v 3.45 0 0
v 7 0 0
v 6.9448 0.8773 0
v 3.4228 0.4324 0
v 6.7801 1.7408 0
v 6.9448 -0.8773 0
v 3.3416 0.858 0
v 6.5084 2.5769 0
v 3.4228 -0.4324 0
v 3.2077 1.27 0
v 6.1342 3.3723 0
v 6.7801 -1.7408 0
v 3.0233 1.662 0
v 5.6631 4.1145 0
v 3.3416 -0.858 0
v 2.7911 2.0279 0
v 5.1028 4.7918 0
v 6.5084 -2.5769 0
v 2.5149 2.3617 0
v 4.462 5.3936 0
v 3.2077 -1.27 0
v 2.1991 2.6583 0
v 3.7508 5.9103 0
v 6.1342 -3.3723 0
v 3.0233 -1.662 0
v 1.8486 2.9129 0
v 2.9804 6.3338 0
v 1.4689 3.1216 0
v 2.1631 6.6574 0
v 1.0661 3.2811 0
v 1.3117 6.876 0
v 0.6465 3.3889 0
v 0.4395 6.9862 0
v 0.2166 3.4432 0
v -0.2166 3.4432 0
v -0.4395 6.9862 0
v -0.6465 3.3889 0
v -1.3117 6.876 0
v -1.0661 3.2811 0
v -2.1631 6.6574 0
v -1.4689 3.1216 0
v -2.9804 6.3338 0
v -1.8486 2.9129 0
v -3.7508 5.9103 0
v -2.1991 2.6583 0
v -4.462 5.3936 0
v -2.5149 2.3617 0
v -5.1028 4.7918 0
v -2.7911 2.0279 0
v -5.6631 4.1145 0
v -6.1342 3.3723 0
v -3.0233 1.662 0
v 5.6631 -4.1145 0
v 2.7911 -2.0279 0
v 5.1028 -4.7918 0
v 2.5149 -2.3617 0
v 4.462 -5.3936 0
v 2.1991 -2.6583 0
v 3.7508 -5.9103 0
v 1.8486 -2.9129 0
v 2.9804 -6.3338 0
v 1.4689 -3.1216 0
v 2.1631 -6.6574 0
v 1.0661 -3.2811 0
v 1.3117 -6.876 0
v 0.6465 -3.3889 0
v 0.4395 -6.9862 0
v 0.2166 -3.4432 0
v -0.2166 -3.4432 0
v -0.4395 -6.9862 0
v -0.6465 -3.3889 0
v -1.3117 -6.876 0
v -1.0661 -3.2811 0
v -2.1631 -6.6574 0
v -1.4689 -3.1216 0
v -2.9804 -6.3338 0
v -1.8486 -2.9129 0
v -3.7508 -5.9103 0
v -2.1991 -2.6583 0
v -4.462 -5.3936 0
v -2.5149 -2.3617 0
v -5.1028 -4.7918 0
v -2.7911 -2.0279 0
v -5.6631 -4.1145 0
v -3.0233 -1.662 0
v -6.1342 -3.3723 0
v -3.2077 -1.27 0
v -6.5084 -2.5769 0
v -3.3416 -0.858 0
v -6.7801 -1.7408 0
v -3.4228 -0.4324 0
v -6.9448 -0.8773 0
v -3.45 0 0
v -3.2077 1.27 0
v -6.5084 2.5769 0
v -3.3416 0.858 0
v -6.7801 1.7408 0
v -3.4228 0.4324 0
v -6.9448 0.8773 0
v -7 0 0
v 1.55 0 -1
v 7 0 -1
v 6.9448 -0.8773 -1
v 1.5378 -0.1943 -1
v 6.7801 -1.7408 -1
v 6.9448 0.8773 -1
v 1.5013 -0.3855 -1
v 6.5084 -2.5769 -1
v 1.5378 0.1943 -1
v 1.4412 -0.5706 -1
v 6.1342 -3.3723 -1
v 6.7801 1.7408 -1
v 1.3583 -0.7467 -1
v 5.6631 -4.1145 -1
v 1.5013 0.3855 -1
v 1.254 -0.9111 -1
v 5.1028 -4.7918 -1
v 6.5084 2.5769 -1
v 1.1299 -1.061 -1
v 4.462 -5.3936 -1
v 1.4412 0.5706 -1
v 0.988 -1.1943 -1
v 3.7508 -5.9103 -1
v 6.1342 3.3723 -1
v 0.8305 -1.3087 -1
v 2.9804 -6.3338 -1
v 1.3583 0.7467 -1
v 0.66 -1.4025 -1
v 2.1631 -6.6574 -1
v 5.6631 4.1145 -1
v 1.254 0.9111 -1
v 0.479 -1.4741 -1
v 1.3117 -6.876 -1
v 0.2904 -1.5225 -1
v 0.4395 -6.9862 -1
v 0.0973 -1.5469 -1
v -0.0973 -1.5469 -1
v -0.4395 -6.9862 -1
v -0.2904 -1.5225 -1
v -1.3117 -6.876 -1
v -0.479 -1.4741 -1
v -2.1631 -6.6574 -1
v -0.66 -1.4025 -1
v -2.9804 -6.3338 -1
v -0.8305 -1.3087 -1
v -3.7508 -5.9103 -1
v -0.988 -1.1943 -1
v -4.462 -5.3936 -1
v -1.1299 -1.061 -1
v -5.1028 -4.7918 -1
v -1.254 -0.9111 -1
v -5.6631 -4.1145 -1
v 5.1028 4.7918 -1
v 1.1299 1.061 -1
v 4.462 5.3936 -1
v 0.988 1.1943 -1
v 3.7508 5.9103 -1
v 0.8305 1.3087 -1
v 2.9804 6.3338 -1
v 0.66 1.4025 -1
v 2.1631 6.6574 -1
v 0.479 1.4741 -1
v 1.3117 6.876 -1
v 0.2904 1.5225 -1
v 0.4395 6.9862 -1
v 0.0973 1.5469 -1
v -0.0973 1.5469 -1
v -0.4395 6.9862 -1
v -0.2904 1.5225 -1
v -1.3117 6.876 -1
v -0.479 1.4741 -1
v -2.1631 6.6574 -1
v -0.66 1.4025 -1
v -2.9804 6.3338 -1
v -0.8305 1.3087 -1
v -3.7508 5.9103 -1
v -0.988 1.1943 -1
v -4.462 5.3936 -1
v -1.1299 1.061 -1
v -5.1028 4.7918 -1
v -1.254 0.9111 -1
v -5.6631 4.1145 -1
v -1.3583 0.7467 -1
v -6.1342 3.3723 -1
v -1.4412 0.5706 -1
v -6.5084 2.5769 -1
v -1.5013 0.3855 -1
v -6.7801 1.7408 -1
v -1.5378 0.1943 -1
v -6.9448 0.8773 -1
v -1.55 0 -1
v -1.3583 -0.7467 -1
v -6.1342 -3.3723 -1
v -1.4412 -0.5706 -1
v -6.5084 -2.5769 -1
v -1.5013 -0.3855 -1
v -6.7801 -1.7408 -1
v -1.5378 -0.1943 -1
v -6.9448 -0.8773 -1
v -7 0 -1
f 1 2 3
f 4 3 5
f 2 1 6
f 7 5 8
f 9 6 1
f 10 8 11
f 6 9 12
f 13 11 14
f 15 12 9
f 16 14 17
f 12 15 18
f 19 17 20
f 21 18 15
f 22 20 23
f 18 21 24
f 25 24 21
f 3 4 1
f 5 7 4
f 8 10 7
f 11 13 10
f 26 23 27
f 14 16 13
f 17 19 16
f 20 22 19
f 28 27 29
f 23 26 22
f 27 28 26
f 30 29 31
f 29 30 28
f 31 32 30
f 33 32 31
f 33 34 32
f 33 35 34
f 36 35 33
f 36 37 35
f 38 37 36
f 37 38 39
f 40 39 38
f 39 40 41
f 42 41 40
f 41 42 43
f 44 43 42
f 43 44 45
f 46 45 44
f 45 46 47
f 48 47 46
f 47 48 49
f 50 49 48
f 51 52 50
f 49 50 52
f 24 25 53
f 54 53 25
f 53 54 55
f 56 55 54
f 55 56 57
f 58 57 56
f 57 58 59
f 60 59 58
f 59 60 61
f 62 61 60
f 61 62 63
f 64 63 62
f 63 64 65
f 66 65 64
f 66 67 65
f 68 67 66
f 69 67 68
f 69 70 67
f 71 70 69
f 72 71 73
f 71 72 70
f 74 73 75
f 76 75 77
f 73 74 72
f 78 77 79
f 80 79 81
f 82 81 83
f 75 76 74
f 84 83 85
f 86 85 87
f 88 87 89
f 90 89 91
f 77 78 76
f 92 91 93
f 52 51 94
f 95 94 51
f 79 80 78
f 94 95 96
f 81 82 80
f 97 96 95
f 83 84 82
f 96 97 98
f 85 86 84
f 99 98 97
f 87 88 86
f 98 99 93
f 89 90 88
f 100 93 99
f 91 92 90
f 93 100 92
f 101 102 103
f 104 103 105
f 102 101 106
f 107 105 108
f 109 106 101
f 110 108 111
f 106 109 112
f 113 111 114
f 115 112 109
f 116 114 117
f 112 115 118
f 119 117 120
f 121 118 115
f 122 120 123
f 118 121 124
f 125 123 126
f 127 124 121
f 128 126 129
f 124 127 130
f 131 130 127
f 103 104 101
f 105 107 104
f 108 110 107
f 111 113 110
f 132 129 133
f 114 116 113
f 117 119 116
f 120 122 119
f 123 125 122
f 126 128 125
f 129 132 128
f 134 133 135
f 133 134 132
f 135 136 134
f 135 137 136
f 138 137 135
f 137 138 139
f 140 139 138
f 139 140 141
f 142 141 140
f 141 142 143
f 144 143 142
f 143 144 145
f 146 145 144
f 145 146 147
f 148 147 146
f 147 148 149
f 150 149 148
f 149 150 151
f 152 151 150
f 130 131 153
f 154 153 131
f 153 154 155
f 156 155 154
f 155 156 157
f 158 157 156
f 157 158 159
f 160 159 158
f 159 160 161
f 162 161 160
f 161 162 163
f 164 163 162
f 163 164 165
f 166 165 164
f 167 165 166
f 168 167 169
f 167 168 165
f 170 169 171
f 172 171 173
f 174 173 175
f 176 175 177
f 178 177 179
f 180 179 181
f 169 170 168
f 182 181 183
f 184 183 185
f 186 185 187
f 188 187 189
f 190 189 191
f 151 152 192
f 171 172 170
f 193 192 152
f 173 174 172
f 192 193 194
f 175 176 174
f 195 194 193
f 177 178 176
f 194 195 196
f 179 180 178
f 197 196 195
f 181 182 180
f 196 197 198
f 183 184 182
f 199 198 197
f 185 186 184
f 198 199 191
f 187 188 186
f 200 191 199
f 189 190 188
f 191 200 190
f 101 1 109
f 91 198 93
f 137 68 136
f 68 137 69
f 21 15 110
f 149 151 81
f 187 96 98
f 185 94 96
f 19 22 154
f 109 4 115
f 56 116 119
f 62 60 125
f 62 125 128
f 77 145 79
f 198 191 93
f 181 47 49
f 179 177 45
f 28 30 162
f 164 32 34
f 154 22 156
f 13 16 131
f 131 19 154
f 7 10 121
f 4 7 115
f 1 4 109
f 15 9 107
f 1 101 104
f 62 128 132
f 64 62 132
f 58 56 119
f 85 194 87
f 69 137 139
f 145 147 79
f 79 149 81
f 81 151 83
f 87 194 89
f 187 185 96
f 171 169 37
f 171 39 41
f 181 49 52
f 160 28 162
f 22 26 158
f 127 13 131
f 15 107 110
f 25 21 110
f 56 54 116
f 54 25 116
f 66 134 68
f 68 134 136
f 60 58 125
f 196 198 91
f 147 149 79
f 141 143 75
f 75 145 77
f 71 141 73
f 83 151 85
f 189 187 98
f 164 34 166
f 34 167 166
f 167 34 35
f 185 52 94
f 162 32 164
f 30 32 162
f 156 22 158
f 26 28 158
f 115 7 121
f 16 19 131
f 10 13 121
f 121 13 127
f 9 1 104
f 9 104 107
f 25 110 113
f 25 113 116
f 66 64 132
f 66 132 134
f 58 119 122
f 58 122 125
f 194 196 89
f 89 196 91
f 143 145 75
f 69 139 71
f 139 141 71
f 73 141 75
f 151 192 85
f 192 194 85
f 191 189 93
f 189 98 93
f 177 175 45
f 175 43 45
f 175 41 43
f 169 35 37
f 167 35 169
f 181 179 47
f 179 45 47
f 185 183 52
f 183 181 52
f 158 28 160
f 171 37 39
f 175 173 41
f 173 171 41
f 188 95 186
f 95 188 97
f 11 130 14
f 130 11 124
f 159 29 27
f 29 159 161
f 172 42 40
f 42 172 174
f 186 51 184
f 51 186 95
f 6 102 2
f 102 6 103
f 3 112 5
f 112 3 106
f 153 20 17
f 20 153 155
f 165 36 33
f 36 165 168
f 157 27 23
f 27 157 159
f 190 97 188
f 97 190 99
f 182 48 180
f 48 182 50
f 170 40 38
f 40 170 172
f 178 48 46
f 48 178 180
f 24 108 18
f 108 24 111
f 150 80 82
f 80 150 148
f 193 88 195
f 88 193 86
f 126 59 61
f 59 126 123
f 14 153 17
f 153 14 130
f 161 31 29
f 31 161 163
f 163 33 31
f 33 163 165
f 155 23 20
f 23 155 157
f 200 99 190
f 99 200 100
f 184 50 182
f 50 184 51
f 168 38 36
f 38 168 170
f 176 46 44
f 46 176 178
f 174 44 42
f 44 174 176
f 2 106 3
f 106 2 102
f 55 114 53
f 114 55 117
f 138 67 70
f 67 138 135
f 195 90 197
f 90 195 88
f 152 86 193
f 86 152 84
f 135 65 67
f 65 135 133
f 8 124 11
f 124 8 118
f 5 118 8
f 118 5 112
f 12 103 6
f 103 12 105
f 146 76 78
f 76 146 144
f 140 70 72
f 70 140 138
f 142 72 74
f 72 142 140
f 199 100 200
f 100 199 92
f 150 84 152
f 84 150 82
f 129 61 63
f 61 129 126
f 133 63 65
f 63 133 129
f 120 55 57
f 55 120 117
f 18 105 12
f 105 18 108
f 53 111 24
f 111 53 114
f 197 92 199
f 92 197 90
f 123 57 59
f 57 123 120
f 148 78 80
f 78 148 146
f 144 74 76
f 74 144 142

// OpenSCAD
$fn = 50;


difference() {
	union() {
		translate(v = [0, 0, -1.0000000000]) {
			cylinder(h = 1.0000000000, r = 7.0000000000);
		}
	}
	union() {
		translate(v = [0, 0, 0]) {
			rotate(a = [0, 0, 0]) {
				difference() {
					union() {
						translate(v = [0, 0, -1.0000000000]) {
							cylinder(h = 1.0000000000, r = 1.2500000000);
						}
						translate(v = [0, 0, -1.0000000000]) {
							cylinder(h = 1.0000000000, r1 = 1.5500000000, r2 = 3.4500000000);
						}
						translate(v = [0, 0, -1.0000000000]) {
							cylinder(h = 1.0000000000, r = 1.5500000000);
						}
						translate(v = [0, 0, -1.0000000000]) {
							cylinder(h = 1.0000000000, r = 1.2500000000);
						}
					}
					union();
				}
			}
		}
	}
}
